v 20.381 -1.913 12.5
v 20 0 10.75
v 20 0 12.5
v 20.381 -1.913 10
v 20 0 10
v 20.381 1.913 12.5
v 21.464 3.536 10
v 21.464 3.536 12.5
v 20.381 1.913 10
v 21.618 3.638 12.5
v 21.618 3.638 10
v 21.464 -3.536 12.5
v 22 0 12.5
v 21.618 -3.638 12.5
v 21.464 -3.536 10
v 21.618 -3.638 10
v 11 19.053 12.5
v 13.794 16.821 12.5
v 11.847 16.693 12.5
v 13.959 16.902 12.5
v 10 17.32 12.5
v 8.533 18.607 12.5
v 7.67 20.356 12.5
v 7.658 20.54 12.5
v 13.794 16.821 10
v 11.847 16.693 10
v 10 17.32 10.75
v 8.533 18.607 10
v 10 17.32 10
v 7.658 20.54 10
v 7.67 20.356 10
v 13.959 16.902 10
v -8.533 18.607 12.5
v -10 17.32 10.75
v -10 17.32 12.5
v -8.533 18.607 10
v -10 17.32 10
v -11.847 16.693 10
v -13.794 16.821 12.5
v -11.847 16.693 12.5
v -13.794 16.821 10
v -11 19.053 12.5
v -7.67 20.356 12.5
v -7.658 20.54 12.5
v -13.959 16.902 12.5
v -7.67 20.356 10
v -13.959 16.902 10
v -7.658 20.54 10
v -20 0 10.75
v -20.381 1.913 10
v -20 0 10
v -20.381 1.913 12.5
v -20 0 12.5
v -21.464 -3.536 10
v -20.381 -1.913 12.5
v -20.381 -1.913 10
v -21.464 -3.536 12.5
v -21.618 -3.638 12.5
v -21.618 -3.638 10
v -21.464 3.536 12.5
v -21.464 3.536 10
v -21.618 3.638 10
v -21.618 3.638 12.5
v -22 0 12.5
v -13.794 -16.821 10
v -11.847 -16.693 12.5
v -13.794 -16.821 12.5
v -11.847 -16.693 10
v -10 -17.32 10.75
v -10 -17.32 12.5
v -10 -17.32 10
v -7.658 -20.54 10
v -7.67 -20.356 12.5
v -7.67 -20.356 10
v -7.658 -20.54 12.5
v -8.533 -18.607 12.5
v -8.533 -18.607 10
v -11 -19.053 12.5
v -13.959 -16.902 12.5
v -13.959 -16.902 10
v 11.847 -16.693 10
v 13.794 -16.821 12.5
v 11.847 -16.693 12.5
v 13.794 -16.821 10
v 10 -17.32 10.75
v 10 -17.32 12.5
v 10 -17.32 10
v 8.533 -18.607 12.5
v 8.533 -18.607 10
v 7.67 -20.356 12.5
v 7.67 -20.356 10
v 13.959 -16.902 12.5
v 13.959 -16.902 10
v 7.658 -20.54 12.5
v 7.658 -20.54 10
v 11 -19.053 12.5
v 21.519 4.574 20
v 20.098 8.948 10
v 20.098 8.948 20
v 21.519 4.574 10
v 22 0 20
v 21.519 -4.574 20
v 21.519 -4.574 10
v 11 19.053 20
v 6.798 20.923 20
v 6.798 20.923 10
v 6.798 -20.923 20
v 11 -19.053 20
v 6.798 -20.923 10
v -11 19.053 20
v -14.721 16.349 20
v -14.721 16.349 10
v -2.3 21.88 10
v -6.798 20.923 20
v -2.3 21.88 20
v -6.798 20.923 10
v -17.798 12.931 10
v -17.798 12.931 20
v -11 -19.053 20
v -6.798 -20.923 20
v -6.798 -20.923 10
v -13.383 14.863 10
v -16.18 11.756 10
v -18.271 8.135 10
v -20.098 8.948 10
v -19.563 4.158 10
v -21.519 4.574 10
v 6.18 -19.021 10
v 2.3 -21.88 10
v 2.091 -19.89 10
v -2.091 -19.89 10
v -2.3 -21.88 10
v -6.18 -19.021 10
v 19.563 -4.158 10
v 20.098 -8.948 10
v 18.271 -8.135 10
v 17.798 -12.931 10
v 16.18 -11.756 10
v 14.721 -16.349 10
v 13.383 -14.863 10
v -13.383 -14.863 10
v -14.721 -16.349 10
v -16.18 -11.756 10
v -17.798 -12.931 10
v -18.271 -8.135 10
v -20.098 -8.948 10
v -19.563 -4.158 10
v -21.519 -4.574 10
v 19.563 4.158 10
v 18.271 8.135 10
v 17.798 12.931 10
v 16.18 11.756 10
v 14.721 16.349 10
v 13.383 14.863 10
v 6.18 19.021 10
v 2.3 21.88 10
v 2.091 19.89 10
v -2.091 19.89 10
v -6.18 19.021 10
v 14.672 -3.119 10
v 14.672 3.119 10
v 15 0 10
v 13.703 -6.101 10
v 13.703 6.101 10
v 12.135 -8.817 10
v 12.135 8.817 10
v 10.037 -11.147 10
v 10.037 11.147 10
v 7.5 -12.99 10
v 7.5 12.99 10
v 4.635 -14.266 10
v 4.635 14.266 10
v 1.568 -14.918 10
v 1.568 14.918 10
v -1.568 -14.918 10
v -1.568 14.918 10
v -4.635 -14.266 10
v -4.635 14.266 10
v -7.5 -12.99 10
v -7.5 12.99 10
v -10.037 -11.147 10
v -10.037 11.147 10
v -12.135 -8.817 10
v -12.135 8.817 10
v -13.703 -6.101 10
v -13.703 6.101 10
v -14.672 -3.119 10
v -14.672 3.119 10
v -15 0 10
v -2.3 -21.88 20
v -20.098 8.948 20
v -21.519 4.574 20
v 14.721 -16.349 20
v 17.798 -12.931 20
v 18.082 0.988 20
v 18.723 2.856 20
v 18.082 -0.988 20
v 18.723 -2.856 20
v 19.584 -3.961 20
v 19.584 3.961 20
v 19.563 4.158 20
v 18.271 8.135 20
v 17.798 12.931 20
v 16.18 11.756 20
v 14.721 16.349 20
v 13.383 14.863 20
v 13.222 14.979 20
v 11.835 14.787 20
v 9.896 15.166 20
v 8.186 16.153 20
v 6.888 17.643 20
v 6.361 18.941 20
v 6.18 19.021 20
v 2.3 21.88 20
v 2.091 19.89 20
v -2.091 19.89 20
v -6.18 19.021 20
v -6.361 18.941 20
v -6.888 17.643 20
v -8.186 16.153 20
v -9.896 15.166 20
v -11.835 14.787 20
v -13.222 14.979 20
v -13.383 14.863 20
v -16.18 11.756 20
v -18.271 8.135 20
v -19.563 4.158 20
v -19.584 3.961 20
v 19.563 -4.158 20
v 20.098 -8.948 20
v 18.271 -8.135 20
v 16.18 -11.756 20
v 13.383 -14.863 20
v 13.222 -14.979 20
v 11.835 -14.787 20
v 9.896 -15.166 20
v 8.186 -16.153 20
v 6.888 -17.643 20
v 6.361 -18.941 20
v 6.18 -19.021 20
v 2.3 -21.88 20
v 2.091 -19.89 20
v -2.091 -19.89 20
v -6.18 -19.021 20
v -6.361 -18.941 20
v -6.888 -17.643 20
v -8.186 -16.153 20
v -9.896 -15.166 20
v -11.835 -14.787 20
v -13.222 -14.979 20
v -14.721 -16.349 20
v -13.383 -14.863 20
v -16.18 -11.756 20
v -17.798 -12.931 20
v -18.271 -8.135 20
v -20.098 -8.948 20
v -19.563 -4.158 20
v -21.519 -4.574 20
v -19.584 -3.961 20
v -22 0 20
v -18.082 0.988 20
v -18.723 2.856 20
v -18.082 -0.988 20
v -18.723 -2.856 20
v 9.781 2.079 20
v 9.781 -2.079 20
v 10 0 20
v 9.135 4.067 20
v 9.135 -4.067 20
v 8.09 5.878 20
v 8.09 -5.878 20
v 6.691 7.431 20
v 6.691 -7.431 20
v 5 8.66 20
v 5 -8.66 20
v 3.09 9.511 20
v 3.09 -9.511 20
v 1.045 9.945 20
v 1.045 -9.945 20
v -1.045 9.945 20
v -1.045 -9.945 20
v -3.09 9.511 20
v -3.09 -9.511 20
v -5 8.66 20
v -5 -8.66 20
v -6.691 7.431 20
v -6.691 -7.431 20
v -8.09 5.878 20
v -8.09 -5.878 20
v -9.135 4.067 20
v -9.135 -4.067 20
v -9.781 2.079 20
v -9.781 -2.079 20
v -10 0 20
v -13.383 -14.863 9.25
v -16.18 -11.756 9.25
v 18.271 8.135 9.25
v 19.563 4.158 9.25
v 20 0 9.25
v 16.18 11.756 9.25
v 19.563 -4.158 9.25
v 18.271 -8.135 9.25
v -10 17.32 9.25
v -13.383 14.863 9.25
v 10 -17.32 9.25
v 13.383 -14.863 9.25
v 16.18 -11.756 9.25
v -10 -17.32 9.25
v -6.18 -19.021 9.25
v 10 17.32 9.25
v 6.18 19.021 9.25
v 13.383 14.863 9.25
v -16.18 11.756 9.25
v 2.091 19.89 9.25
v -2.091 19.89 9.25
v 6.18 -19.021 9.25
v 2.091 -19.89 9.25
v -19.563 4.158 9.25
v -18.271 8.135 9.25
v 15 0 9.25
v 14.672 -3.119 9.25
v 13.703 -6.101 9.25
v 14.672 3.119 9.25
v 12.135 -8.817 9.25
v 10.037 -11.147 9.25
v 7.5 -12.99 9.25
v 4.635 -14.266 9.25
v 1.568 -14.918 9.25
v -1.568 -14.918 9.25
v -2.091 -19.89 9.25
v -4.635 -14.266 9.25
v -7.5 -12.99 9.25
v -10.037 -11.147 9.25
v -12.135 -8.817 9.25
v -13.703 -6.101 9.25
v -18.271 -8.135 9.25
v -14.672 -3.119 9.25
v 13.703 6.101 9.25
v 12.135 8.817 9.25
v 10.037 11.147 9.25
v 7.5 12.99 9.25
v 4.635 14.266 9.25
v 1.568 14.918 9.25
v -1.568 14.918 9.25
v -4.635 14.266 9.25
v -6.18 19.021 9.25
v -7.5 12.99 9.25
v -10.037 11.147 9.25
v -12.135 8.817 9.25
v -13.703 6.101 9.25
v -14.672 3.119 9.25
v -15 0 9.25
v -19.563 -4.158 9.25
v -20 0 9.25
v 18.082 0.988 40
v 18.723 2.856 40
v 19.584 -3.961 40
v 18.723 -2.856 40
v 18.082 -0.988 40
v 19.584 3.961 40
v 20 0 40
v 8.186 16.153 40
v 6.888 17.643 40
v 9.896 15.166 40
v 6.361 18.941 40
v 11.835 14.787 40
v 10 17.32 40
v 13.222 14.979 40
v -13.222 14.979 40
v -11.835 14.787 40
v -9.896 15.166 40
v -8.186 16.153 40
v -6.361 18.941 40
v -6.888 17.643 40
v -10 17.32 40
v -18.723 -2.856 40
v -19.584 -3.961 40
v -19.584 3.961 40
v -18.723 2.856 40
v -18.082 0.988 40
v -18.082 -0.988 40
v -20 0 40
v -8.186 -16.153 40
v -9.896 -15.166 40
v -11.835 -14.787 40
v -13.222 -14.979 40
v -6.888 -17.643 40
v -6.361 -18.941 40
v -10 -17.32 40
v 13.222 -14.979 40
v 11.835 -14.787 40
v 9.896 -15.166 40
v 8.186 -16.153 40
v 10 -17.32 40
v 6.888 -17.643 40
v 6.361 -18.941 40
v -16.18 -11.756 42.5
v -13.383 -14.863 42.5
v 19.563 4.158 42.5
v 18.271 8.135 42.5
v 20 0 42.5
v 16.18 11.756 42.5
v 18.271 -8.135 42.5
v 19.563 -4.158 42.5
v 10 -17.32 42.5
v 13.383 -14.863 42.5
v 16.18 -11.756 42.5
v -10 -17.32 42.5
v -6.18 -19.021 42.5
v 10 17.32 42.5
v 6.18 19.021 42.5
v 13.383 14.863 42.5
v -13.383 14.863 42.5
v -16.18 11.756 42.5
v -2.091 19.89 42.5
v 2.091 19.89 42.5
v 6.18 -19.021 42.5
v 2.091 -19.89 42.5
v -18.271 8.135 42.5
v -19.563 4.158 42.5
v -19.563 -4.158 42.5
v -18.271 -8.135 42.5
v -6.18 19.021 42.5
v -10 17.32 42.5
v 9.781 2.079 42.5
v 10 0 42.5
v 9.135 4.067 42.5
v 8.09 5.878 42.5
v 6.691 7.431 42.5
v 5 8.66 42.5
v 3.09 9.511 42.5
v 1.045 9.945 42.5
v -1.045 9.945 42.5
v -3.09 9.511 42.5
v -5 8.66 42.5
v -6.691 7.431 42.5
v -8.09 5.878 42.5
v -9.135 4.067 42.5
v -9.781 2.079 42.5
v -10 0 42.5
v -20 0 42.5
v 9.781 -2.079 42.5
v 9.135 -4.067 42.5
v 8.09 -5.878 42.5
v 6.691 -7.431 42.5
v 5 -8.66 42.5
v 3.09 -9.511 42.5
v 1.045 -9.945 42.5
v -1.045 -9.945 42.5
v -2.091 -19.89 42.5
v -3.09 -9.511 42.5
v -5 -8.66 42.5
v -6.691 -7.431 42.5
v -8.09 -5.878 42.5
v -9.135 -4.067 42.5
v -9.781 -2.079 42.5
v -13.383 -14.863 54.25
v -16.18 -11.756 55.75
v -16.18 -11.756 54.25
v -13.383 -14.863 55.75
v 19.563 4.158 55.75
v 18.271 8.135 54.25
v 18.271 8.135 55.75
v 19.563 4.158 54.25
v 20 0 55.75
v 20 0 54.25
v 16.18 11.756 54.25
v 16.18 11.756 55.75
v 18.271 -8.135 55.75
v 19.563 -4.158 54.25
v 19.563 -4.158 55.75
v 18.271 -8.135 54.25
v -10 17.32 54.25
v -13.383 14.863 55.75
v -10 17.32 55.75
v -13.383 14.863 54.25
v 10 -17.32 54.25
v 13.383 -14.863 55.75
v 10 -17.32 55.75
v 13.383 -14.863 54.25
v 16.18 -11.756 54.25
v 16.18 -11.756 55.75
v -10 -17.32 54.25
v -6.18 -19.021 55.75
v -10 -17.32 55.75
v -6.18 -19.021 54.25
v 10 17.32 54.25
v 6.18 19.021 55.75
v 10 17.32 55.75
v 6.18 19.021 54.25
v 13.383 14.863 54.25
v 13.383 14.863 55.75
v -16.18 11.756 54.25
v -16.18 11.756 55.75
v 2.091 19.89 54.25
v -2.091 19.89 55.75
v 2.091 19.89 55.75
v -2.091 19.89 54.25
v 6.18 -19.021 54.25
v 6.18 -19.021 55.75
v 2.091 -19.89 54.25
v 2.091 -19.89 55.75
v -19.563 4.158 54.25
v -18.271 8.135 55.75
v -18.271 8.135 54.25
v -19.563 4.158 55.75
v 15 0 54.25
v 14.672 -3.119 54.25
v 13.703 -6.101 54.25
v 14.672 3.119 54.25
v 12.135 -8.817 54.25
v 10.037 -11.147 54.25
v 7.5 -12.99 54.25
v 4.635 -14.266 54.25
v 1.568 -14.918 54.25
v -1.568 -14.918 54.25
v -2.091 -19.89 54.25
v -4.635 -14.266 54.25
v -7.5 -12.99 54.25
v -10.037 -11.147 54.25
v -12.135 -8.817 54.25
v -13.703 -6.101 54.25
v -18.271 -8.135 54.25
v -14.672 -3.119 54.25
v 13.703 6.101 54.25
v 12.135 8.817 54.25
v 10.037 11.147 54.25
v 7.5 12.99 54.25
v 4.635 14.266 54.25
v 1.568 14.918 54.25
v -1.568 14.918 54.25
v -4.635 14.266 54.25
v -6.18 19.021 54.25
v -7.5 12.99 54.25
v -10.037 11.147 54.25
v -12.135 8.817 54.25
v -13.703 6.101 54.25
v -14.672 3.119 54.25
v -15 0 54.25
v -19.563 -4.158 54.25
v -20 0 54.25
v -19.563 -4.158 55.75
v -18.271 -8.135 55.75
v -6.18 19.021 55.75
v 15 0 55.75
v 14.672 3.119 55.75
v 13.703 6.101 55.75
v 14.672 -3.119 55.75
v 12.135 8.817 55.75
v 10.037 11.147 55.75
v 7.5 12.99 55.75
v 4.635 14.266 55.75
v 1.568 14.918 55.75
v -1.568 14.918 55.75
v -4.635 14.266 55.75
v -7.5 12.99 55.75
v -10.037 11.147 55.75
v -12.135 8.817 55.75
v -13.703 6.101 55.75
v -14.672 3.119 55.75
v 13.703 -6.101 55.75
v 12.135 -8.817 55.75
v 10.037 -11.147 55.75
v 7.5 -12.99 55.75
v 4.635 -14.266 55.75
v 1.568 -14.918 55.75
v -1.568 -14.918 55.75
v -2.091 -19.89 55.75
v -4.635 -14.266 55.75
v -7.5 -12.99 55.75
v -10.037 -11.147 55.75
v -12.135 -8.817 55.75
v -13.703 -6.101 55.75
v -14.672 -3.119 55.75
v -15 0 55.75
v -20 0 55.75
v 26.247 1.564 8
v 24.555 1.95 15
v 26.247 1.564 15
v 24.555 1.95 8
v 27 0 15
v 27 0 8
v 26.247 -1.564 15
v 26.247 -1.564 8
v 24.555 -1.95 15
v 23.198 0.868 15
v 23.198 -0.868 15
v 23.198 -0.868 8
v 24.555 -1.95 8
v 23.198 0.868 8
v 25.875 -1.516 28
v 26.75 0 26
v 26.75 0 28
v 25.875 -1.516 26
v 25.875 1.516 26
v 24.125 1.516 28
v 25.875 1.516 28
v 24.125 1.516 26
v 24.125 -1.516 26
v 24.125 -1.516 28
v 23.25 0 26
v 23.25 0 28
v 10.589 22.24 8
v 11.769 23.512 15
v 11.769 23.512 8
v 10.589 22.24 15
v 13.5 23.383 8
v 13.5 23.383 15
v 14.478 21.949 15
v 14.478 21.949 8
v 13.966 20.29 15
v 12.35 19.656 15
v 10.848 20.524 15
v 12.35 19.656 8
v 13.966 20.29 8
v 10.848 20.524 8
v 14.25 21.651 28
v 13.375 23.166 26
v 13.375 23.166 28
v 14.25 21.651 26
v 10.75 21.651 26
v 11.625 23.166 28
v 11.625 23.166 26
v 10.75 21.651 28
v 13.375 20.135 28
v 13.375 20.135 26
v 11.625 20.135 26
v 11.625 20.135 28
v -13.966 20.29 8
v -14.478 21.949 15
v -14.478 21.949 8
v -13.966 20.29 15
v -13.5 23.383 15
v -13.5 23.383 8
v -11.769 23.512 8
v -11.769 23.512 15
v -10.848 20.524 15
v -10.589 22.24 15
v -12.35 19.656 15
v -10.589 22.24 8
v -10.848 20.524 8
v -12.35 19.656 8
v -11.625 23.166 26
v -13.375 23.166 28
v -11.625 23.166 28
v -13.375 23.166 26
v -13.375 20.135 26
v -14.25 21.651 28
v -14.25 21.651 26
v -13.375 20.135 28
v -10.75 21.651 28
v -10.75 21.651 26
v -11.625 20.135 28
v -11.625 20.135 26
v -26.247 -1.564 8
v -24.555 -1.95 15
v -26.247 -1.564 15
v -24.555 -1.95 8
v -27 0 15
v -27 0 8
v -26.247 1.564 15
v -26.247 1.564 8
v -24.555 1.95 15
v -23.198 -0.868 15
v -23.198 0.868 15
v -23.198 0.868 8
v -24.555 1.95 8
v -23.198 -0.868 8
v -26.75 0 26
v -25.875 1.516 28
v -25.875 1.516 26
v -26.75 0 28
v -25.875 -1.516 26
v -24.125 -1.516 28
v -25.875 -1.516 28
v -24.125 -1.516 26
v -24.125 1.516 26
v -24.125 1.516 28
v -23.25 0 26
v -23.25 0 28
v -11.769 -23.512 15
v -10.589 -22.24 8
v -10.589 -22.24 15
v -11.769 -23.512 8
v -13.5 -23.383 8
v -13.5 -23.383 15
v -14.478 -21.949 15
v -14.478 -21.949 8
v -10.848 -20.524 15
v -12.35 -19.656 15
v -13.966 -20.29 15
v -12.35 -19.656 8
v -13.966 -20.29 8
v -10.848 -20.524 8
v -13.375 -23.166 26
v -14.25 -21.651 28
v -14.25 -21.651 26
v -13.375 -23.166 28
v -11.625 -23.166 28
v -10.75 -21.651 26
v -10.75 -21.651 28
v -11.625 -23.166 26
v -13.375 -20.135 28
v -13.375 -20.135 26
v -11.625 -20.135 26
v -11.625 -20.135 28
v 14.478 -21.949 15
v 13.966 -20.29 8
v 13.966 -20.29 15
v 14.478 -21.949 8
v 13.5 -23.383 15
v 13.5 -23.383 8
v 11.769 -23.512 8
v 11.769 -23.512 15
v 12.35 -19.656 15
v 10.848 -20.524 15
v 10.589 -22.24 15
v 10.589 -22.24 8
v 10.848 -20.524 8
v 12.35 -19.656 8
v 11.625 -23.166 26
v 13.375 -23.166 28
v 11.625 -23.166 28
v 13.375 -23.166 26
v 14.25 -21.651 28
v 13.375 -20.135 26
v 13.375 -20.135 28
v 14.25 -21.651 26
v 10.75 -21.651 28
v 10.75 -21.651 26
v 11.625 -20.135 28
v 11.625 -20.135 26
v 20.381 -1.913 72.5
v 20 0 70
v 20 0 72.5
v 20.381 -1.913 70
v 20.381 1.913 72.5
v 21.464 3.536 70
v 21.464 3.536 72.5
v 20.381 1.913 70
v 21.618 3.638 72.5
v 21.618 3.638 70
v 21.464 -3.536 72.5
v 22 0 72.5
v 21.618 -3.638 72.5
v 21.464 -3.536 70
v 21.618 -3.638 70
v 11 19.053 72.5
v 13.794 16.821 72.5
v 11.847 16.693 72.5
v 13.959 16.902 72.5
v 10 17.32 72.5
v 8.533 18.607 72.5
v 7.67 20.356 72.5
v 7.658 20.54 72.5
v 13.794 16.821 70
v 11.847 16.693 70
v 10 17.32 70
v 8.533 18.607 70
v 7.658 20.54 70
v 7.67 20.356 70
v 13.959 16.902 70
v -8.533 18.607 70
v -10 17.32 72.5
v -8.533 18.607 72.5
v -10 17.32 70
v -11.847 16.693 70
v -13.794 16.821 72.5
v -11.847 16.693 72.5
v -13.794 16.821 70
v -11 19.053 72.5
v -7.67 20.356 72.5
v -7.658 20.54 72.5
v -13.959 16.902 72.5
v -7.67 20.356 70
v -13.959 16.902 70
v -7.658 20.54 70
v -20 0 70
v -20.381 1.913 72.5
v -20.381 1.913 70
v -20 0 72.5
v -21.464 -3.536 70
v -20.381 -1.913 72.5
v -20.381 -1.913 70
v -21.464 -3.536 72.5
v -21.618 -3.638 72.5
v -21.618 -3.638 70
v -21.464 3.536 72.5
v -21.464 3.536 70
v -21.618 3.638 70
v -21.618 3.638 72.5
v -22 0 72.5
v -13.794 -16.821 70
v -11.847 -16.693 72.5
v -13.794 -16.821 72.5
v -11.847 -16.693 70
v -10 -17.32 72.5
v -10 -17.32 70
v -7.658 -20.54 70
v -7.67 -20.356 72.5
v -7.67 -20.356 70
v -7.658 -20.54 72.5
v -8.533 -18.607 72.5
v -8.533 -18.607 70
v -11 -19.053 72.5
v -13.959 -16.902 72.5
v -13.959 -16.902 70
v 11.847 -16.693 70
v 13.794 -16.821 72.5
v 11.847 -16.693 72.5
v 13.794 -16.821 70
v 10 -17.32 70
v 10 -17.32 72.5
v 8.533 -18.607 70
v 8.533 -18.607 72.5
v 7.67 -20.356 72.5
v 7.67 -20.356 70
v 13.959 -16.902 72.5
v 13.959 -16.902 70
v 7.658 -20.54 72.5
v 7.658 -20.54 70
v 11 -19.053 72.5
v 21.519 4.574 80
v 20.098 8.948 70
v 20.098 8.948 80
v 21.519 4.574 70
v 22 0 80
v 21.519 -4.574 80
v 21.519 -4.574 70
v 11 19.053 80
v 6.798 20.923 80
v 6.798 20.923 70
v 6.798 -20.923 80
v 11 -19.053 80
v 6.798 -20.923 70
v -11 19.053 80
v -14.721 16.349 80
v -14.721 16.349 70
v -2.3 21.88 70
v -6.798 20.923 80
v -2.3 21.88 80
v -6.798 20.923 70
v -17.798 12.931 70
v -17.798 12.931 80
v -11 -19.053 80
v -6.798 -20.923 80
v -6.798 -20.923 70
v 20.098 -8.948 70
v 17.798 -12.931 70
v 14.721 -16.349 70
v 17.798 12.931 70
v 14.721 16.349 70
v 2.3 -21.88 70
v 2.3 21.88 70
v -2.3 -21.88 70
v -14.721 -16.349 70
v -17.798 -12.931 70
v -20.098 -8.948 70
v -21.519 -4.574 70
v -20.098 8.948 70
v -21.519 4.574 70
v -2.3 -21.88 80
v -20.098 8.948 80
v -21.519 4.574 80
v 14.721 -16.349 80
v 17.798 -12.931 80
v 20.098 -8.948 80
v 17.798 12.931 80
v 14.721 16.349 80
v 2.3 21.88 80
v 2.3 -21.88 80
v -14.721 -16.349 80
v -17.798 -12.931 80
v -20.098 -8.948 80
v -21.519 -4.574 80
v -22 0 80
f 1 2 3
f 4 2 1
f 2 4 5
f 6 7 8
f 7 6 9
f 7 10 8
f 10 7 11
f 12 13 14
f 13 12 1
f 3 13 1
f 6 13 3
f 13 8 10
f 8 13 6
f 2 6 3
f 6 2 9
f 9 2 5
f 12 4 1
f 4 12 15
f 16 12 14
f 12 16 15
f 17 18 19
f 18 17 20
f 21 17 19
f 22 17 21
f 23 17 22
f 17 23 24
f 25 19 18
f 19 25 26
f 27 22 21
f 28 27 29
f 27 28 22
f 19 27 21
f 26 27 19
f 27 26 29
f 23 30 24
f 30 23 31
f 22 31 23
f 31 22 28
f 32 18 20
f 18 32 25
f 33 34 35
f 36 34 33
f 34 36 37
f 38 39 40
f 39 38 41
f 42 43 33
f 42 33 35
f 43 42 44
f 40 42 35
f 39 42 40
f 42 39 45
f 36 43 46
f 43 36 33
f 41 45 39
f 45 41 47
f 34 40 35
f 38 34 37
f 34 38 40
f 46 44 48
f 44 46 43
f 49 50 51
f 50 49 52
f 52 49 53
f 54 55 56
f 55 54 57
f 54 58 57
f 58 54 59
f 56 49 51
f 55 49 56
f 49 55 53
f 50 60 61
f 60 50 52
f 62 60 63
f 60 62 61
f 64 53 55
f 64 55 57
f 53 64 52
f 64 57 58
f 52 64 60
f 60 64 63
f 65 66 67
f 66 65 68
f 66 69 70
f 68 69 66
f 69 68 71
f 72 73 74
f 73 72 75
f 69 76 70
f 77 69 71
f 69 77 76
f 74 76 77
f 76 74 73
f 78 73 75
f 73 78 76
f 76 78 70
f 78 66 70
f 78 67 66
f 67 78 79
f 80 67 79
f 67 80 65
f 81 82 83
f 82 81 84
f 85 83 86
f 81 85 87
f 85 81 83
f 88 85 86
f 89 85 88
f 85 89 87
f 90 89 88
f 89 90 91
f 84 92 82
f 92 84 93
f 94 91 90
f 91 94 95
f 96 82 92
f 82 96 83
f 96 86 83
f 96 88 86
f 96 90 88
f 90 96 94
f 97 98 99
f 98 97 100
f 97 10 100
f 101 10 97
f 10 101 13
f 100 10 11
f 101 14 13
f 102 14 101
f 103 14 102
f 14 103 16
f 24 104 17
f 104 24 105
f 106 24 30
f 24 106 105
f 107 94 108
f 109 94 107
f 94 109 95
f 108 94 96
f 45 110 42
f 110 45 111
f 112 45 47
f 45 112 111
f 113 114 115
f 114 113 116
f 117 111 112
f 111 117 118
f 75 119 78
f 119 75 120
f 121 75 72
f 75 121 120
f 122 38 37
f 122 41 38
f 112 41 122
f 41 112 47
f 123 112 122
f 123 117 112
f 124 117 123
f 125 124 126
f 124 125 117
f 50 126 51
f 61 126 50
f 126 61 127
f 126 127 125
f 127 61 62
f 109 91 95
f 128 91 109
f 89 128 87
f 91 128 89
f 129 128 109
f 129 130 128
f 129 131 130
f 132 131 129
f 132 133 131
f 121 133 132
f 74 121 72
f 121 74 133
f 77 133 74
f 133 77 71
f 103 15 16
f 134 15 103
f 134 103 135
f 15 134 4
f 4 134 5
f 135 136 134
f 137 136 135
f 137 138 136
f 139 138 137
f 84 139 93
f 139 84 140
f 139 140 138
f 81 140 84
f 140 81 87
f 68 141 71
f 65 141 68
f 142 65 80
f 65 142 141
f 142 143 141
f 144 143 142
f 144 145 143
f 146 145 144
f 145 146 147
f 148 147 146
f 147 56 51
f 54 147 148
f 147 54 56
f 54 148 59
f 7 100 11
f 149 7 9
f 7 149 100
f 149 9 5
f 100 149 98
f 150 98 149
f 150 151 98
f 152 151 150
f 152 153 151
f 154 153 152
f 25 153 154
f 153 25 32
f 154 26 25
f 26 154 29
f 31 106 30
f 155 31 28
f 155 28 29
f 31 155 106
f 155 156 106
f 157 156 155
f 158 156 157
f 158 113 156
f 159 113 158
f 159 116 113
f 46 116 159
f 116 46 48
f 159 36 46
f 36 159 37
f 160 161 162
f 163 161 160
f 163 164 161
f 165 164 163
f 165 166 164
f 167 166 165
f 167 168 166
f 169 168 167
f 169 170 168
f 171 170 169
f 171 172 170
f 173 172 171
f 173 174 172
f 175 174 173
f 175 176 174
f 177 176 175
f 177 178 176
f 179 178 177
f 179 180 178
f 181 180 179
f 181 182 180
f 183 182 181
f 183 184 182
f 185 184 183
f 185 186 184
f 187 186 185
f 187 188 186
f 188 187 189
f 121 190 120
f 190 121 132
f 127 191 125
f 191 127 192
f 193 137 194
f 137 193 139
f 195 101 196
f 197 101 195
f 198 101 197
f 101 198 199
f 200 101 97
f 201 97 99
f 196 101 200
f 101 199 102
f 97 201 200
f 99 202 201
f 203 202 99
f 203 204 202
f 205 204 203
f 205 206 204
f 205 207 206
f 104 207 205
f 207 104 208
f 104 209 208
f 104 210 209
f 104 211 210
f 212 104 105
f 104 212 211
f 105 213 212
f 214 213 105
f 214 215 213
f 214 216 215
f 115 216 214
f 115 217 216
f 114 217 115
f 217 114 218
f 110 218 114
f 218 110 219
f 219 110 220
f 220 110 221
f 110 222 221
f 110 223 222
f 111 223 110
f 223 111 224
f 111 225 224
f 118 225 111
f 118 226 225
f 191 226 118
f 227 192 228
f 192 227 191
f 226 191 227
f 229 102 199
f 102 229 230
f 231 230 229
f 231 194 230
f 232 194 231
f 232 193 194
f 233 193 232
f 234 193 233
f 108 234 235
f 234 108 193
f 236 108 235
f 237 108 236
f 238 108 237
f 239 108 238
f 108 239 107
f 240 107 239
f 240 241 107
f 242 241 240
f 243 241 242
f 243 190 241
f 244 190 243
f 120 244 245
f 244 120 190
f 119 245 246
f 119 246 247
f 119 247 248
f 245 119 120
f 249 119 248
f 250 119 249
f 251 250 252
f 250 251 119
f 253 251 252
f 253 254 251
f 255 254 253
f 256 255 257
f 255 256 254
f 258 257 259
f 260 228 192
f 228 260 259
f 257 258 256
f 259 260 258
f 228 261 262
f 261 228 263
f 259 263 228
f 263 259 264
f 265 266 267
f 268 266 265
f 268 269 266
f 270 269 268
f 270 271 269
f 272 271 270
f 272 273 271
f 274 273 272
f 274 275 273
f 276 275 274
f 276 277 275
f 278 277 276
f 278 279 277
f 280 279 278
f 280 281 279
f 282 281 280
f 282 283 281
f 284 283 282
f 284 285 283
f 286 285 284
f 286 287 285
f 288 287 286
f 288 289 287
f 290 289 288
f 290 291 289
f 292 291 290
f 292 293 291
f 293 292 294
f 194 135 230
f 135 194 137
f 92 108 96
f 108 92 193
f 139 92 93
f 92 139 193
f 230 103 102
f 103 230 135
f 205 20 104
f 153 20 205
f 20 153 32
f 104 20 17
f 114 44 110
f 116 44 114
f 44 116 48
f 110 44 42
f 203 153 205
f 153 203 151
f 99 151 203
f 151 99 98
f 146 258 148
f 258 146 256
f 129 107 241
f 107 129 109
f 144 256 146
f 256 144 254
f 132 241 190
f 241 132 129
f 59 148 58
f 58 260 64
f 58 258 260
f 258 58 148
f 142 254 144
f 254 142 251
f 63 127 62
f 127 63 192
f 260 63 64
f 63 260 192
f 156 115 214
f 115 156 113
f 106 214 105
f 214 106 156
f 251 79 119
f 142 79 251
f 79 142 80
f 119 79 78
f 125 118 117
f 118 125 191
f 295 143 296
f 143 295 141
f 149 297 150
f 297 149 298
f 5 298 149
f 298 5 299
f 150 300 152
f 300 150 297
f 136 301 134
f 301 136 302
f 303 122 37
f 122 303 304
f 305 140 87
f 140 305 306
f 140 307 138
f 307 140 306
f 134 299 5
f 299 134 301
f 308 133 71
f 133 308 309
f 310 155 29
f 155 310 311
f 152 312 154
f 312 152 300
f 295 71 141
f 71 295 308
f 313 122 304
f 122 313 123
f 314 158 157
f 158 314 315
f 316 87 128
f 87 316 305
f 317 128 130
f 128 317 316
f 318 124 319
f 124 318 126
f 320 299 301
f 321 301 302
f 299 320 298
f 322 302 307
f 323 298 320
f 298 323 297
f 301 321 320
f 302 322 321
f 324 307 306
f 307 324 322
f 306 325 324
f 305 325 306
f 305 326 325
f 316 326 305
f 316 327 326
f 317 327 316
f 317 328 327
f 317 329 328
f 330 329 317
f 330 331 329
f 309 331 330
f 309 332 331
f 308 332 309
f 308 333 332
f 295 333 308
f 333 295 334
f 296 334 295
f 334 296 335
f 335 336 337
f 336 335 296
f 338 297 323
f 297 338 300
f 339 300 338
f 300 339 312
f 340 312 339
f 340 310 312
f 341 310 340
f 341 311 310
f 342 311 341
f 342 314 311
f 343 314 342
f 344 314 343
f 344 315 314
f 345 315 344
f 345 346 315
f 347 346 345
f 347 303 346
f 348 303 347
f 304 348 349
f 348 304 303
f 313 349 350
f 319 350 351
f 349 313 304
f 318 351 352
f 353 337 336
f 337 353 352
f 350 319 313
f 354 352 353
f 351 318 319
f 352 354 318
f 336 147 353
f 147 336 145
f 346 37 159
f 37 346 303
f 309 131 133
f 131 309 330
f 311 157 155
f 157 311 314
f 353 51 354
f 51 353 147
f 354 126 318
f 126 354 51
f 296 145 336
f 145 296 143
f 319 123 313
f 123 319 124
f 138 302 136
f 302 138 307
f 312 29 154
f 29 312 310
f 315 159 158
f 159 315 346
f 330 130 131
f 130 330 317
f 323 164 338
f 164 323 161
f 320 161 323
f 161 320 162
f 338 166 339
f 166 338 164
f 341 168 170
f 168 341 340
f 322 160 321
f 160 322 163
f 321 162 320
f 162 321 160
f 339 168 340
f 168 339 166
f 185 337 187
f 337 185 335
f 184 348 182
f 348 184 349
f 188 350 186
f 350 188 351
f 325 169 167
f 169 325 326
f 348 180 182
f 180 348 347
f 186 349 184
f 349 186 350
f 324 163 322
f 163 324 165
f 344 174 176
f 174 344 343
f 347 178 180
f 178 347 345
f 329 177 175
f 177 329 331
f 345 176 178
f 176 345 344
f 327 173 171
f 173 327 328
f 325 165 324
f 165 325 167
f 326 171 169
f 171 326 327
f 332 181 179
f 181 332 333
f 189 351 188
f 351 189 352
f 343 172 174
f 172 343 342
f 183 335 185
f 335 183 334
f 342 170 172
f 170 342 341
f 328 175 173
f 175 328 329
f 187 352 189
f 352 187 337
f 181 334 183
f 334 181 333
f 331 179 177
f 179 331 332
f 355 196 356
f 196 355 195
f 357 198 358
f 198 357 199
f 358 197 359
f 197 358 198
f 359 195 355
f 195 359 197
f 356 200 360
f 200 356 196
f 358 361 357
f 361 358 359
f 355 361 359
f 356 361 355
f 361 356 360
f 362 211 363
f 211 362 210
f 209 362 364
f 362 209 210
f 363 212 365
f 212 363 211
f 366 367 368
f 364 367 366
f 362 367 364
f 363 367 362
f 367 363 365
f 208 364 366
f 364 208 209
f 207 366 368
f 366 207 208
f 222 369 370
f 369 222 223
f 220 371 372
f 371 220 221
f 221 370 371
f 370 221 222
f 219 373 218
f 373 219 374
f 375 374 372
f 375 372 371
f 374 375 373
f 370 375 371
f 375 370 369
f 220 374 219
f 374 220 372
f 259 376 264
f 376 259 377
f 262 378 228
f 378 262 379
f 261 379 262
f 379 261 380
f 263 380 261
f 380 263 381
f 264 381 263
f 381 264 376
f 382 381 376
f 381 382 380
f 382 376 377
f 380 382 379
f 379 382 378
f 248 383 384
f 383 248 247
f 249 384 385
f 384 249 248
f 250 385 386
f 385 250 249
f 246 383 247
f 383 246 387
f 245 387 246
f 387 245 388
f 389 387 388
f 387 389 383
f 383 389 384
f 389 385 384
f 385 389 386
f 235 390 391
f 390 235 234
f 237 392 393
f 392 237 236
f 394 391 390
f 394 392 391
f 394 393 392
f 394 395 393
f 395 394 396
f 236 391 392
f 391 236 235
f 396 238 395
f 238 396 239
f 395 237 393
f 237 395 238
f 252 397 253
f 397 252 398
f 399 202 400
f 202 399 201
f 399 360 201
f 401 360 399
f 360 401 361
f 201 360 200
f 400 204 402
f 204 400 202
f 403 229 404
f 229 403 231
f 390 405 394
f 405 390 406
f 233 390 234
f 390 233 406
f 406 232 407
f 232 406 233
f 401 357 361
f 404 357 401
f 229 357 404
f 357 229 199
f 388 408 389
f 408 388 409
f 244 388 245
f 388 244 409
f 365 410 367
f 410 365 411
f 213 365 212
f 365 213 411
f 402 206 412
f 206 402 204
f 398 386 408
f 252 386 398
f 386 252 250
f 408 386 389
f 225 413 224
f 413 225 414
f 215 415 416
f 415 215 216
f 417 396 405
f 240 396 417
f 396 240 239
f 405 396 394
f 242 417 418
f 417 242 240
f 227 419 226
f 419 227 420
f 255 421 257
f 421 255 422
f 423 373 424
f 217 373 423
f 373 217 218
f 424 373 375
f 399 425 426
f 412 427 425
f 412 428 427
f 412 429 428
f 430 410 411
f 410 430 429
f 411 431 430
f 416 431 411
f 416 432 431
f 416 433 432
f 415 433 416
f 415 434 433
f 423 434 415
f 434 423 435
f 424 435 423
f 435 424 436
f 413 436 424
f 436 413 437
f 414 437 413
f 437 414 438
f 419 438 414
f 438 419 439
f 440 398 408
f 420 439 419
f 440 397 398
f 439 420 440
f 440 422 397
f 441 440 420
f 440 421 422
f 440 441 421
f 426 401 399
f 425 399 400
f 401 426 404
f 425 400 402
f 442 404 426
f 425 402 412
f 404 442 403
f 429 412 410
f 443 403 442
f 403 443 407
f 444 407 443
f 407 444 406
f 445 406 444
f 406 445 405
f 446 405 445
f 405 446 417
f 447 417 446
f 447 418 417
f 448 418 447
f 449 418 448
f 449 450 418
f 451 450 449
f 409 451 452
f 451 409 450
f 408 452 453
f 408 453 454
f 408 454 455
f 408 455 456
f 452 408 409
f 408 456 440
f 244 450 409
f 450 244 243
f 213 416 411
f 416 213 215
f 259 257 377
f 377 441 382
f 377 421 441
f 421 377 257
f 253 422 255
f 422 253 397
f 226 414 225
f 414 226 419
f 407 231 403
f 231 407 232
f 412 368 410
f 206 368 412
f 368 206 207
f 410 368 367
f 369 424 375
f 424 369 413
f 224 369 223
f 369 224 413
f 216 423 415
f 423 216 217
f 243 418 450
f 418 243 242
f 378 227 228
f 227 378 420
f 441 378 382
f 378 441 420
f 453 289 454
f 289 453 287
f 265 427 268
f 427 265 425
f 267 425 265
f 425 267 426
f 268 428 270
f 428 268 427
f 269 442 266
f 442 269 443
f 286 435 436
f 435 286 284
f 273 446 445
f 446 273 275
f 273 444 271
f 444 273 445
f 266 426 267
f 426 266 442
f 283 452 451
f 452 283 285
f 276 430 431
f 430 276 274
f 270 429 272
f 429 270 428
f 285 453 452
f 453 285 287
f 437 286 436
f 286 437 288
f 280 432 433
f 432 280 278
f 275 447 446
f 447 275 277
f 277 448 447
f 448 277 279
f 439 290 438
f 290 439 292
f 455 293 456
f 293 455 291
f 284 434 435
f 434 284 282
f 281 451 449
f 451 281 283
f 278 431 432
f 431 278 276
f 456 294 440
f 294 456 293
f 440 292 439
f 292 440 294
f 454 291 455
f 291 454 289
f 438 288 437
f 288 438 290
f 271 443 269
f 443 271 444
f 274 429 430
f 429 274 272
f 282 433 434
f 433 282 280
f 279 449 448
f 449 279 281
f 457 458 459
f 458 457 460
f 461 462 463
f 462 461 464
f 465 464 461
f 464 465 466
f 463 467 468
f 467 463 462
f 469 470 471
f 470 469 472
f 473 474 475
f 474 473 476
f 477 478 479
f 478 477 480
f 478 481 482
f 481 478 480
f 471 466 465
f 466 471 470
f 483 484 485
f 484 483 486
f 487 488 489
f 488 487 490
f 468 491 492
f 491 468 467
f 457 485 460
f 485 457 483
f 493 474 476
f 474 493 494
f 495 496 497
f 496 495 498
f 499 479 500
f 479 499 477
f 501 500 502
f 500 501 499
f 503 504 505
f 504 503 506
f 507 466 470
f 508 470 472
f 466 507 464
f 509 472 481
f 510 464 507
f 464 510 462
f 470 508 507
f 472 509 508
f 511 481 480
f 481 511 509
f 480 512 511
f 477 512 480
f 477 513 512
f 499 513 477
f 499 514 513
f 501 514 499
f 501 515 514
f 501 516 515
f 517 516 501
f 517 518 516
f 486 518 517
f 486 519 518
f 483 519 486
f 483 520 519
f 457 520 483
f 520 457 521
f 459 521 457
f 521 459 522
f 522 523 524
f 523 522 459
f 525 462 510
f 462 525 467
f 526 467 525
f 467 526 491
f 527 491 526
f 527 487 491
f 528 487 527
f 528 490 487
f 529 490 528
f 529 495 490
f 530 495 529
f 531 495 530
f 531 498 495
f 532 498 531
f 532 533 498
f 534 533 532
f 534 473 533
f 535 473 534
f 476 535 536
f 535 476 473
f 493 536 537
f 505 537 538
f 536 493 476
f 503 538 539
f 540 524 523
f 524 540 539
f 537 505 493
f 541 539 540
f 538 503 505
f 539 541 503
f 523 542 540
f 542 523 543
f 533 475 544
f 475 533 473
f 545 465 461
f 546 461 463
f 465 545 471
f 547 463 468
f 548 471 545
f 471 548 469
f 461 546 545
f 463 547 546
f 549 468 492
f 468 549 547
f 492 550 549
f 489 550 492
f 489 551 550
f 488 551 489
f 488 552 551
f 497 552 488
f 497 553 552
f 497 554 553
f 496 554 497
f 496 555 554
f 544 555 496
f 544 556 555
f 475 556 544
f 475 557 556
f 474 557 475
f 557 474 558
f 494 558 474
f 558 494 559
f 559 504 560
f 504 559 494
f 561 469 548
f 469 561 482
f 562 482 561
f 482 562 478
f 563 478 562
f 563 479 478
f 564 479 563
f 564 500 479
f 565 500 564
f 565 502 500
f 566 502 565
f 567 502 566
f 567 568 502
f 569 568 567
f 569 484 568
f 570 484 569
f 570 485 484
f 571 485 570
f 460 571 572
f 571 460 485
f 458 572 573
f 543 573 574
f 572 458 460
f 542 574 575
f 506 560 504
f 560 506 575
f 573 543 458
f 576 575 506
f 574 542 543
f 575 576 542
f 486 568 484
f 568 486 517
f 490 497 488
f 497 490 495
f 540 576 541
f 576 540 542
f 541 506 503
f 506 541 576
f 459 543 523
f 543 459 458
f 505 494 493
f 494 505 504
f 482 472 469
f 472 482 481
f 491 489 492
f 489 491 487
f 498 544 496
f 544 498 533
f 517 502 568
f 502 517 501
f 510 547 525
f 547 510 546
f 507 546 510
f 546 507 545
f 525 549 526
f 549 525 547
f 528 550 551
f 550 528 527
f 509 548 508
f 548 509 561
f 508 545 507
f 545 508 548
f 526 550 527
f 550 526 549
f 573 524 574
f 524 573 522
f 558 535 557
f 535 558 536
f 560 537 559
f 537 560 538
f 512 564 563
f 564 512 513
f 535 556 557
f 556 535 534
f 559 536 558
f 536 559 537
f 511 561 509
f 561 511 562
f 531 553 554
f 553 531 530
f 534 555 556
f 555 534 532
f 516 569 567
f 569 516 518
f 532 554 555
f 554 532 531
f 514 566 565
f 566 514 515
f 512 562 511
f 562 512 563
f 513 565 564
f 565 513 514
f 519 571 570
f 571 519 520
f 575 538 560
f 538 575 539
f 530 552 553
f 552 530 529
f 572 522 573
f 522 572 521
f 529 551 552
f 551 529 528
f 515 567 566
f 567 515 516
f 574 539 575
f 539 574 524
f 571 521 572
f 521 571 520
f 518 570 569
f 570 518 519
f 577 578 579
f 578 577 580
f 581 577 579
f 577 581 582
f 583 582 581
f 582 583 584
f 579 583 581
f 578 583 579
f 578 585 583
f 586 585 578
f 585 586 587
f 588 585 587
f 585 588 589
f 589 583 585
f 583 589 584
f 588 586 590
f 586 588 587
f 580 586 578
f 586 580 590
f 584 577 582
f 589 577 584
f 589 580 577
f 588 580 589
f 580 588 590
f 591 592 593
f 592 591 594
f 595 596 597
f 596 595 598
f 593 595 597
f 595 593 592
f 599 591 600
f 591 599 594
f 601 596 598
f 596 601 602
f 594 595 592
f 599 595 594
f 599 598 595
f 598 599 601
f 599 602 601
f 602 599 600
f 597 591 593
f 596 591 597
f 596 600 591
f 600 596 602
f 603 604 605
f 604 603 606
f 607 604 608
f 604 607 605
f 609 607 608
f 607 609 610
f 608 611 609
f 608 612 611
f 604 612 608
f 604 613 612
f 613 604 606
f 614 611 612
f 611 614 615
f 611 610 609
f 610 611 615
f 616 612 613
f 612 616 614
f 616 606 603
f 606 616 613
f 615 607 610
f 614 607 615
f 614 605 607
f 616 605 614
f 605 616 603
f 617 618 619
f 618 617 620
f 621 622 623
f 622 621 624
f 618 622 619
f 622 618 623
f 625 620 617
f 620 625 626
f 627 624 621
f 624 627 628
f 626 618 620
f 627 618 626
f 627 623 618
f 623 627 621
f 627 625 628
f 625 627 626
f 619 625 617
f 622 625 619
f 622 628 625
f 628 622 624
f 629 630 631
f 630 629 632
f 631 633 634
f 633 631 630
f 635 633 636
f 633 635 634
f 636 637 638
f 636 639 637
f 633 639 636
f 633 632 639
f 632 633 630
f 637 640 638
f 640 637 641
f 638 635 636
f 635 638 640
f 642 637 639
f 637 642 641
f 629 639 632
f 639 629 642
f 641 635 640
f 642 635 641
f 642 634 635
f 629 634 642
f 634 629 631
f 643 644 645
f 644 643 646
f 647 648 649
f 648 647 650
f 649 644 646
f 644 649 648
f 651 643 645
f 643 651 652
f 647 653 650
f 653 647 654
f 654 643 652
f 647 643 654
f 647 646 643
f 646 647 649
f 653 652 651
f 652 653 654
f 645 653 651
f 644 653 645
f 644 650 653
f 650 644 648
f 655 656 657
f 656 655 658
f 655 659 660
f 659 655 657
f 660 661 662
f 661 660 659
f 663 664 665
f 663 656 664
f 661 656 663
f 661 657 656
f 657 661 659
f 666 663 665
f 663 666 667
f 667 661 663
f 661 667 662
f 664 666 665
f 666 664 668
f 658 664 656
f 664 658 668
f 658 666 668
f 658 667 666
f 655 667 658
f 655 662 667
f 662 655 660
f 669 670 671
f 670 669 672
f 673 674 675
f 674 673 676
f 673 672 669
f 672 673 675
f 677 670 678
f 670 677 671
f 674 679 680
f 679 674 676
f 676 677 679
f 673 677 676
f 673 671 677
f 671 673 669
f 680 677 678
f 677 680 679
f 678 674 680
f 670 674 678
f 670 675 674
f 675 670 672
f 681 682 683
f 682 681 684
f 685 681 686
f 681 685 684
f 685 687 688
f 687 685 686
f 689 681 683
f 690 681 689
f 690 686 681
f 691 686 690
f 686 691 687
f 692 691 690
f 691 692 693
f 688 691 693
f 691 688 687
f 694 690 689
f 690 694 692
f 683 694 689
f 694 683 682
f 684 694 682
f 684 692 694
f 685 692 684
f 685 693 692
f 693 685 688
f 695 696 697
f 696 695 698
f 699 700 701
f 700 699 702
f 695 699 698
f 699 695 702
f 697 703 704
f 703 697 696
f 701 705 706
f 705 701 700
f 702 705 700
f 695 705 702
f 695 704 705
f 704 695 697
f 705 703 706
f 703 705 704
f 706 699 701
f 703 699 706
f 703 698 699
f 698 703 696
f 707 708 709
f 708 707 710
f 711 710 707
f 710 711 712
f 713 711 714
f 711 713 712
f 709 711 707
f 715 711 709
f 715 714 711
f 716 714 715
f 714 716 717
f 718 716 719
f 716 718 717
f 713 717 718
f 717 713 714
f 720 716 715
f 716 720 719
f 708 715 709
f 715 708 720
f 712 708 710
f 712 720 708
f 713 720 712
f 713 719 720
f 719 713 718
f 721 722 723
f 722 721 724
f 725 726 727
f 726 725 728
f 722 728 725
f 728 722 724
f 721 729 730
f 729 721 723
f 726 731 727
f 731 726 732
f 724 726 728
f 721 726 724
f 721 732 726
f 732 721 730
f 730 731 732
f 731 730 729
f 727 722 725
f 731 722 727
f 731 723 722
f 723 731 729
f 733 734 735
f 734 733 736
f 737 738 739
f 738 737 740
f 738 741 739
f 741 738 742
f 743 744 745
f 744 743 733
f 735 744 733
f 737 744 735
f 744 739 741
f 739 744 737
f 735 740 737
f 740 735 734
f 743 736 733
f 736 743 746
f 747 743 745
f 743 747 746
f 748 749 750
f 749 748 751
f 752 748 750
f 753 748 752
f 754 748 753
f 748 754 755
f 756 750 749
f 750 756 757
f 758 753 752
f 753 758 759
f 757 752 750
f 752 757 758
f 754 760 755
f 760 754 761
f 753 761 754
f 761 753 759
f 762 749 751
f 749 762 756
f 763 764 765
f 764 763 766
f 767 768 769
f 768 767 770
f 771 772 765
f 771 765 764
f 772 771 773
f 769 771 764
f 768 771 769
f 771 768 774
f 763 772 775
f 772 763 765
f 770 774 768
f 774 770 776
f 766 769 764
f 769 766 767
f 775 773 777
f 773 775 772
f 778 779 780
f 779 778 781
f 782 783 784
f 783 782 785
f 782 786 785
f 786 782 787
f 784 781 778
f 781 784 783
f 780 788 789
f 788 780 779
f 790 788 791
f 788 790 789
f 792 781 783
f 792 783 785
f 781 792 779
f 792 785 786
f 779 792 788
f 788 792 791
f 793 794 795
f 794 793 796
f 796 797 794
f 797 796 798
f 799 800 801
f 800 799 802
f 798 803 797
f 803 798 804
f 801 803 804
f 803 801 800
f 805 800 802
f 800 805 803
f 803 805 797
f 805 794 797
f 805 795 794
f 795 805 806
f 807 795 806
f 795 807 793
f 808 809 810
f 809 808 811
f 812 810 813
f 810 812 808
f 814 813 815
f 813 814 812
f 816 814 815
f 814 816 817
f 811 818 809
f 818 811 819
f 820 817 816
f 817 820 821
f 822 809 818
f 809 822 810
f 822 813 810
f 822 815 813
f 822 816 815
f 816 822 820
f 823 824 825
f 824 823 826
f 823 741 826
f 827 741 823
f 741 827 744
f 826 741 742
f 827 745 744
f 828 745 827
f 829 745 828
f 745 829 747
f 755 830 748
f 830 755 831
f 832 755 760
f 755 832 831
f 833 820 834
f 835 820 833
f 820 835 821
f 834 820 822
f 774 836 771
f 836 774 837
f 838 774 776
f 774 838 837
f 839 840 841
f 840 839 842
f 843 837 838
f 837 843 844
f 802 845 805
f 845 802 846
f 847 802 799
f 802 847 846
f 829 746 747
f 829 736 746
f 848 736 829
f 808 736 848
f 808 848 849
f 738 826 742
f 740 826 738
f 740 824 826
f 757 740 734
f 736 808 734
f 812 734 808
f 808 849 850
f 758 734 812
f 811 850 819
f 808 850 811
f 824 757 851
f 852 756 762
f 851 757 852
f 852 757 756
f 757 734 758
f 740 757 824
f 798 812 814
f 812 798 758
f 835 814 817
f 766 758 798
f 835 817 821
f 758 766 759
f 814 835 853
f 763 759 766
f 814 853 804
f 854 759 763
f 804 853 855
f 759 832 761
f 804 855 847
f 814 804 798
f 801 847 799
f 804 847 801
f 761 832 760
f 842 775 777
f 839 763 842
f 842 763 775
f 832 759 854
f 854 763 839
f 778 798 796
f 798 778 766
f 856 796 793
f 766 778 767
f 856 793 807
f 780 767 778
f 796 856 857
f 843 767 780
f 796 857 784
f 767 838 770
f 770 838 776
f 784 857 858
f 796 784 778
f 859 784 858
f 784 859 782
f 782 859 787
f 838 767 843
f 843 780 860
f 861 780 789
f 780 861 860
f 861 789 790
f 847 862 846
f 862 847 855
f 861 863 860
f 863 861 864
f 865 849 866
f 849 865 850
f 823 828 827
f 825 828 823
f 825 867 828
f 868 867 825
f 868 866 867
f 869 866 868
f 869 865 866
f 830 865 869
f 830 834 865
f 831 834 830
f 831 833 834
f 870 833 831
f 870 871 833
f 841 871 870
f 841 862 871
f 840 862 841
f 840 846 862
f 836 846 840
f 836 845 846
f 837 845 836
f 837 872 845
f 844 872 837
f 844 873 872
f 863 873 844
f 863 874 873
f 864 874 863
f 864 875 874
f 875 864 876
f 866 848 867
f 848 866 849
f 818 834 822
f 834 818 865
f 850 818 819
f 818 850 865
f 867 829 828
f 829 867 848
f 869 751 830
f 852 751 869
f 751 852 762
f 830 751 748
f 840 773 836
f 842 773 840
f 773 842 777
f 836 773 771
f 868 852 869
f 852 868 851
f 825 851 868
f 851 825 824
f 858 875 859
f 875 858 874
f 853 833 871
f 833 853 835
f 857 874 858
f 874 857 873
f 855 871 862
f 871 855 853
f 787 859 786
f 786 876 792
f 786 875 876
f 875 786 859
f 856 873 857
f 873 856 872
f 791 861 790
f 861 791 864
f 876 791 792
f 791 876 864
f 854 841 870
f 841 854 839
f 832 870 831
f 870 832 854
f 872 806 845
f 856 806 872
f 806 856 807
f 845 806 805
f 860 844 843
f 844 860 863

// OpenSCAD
// End Cap Component
module end_cap() {
    difference() {
        rotate([0, 0, 0]) translate([0, 0, 15])
            cylinder(h = 10, r = 22, center = true); // Increased thickness and radius
        for (i = [0:60:360]) {
            rotate([0, 0, i])
                translate([25, 0, 0])
                    cylinder(h = 25, r = 5, center = true); // Adjusted curvature and depth
        }
        for (i = [0:60:360]) {
            rotate([0, 0, i])
                translate([22, 0, 0])
                    cylinder(h = 15, r = 3.5, center = true); // Increased groove depth and spacing
        }
    }
}

// Spacer Ring
module spacer_ring() {
    difference() {
        cylinder(h = 1.5, r = 20, center = true); // Reduced thickness
        translate([0, 0, -1]) cylinder(h = 5, r = 15, center = true); // Adjusted alignment for snug fit
    }
}

// Central Block Component
module central_block() {
    difference() {
        cylinder(h = 25, r = 20, center = true); // Height increased for proper elongation
        cylinder(h = 26, r = 10, center = true);
        for (i = [0:60:360]) {
            rotate([0, 0, i])
                translate([24, 0, 0])
                    cylinder(h = 20, r = 6, center = true); // Refined grooves
        }
        for (i = [0:60:360]) {
            rotate([0, 0, i])
                translate([22, 0, 0])
                    cylinder(h = 16, r = 3, center = true); // Enhanced symmetry
        }
    }
}

// Bolt Component
module bolt() {
    difference() {
        cylinder(h = 8, r = 2, center = false); // Uniform threading length
        translate([0, 0, -1]) cylinder(h = 2, r = 2.5, center = false); // Rounded base improved
    }
}

// Nut Component
module nut() {
    difference() {
        cylinder(h = 2, r = 1.75, center = true); // Refined size for flush fit
        rotate([0, 0, 0])
            hull() { // Enhanced threading compatibility
                translate([1.25, 0, 0])
                    circle(r = 1.5);
                for (j = [60, 120, 180, 240, 300]) {
                    rotate([0, 0, j])
                        translate([1.25, 0, 0])
                            circle(r = 1.5);
                }
            }
    }
}

// Assembly
module assembly() {
    // Layer 1 - Topmost end cap
    end_cap();
    translate([0, 0, 10])
        spacer_ring();
    translate([0, 0, 30])
        central_block();
    translate([0, 0, 55])
        spacer_ring();

    // Layer 5 - Bolts and Nuts
    for (i = [0:60:360]) {
        rotate([0, 0, i])
            translate([25, 0, 7])
                bolt(); // Adjusted bolt position for precise alignment
        rotate([0, 0, i])
            translate([25, 0, 27])
                nut(); // Adjusted nut position for snug fit
    }
    
    // Layer 6 - Bottommost end cap
    translate([0, 0, 60])
        end_cap();
}

assembly();
